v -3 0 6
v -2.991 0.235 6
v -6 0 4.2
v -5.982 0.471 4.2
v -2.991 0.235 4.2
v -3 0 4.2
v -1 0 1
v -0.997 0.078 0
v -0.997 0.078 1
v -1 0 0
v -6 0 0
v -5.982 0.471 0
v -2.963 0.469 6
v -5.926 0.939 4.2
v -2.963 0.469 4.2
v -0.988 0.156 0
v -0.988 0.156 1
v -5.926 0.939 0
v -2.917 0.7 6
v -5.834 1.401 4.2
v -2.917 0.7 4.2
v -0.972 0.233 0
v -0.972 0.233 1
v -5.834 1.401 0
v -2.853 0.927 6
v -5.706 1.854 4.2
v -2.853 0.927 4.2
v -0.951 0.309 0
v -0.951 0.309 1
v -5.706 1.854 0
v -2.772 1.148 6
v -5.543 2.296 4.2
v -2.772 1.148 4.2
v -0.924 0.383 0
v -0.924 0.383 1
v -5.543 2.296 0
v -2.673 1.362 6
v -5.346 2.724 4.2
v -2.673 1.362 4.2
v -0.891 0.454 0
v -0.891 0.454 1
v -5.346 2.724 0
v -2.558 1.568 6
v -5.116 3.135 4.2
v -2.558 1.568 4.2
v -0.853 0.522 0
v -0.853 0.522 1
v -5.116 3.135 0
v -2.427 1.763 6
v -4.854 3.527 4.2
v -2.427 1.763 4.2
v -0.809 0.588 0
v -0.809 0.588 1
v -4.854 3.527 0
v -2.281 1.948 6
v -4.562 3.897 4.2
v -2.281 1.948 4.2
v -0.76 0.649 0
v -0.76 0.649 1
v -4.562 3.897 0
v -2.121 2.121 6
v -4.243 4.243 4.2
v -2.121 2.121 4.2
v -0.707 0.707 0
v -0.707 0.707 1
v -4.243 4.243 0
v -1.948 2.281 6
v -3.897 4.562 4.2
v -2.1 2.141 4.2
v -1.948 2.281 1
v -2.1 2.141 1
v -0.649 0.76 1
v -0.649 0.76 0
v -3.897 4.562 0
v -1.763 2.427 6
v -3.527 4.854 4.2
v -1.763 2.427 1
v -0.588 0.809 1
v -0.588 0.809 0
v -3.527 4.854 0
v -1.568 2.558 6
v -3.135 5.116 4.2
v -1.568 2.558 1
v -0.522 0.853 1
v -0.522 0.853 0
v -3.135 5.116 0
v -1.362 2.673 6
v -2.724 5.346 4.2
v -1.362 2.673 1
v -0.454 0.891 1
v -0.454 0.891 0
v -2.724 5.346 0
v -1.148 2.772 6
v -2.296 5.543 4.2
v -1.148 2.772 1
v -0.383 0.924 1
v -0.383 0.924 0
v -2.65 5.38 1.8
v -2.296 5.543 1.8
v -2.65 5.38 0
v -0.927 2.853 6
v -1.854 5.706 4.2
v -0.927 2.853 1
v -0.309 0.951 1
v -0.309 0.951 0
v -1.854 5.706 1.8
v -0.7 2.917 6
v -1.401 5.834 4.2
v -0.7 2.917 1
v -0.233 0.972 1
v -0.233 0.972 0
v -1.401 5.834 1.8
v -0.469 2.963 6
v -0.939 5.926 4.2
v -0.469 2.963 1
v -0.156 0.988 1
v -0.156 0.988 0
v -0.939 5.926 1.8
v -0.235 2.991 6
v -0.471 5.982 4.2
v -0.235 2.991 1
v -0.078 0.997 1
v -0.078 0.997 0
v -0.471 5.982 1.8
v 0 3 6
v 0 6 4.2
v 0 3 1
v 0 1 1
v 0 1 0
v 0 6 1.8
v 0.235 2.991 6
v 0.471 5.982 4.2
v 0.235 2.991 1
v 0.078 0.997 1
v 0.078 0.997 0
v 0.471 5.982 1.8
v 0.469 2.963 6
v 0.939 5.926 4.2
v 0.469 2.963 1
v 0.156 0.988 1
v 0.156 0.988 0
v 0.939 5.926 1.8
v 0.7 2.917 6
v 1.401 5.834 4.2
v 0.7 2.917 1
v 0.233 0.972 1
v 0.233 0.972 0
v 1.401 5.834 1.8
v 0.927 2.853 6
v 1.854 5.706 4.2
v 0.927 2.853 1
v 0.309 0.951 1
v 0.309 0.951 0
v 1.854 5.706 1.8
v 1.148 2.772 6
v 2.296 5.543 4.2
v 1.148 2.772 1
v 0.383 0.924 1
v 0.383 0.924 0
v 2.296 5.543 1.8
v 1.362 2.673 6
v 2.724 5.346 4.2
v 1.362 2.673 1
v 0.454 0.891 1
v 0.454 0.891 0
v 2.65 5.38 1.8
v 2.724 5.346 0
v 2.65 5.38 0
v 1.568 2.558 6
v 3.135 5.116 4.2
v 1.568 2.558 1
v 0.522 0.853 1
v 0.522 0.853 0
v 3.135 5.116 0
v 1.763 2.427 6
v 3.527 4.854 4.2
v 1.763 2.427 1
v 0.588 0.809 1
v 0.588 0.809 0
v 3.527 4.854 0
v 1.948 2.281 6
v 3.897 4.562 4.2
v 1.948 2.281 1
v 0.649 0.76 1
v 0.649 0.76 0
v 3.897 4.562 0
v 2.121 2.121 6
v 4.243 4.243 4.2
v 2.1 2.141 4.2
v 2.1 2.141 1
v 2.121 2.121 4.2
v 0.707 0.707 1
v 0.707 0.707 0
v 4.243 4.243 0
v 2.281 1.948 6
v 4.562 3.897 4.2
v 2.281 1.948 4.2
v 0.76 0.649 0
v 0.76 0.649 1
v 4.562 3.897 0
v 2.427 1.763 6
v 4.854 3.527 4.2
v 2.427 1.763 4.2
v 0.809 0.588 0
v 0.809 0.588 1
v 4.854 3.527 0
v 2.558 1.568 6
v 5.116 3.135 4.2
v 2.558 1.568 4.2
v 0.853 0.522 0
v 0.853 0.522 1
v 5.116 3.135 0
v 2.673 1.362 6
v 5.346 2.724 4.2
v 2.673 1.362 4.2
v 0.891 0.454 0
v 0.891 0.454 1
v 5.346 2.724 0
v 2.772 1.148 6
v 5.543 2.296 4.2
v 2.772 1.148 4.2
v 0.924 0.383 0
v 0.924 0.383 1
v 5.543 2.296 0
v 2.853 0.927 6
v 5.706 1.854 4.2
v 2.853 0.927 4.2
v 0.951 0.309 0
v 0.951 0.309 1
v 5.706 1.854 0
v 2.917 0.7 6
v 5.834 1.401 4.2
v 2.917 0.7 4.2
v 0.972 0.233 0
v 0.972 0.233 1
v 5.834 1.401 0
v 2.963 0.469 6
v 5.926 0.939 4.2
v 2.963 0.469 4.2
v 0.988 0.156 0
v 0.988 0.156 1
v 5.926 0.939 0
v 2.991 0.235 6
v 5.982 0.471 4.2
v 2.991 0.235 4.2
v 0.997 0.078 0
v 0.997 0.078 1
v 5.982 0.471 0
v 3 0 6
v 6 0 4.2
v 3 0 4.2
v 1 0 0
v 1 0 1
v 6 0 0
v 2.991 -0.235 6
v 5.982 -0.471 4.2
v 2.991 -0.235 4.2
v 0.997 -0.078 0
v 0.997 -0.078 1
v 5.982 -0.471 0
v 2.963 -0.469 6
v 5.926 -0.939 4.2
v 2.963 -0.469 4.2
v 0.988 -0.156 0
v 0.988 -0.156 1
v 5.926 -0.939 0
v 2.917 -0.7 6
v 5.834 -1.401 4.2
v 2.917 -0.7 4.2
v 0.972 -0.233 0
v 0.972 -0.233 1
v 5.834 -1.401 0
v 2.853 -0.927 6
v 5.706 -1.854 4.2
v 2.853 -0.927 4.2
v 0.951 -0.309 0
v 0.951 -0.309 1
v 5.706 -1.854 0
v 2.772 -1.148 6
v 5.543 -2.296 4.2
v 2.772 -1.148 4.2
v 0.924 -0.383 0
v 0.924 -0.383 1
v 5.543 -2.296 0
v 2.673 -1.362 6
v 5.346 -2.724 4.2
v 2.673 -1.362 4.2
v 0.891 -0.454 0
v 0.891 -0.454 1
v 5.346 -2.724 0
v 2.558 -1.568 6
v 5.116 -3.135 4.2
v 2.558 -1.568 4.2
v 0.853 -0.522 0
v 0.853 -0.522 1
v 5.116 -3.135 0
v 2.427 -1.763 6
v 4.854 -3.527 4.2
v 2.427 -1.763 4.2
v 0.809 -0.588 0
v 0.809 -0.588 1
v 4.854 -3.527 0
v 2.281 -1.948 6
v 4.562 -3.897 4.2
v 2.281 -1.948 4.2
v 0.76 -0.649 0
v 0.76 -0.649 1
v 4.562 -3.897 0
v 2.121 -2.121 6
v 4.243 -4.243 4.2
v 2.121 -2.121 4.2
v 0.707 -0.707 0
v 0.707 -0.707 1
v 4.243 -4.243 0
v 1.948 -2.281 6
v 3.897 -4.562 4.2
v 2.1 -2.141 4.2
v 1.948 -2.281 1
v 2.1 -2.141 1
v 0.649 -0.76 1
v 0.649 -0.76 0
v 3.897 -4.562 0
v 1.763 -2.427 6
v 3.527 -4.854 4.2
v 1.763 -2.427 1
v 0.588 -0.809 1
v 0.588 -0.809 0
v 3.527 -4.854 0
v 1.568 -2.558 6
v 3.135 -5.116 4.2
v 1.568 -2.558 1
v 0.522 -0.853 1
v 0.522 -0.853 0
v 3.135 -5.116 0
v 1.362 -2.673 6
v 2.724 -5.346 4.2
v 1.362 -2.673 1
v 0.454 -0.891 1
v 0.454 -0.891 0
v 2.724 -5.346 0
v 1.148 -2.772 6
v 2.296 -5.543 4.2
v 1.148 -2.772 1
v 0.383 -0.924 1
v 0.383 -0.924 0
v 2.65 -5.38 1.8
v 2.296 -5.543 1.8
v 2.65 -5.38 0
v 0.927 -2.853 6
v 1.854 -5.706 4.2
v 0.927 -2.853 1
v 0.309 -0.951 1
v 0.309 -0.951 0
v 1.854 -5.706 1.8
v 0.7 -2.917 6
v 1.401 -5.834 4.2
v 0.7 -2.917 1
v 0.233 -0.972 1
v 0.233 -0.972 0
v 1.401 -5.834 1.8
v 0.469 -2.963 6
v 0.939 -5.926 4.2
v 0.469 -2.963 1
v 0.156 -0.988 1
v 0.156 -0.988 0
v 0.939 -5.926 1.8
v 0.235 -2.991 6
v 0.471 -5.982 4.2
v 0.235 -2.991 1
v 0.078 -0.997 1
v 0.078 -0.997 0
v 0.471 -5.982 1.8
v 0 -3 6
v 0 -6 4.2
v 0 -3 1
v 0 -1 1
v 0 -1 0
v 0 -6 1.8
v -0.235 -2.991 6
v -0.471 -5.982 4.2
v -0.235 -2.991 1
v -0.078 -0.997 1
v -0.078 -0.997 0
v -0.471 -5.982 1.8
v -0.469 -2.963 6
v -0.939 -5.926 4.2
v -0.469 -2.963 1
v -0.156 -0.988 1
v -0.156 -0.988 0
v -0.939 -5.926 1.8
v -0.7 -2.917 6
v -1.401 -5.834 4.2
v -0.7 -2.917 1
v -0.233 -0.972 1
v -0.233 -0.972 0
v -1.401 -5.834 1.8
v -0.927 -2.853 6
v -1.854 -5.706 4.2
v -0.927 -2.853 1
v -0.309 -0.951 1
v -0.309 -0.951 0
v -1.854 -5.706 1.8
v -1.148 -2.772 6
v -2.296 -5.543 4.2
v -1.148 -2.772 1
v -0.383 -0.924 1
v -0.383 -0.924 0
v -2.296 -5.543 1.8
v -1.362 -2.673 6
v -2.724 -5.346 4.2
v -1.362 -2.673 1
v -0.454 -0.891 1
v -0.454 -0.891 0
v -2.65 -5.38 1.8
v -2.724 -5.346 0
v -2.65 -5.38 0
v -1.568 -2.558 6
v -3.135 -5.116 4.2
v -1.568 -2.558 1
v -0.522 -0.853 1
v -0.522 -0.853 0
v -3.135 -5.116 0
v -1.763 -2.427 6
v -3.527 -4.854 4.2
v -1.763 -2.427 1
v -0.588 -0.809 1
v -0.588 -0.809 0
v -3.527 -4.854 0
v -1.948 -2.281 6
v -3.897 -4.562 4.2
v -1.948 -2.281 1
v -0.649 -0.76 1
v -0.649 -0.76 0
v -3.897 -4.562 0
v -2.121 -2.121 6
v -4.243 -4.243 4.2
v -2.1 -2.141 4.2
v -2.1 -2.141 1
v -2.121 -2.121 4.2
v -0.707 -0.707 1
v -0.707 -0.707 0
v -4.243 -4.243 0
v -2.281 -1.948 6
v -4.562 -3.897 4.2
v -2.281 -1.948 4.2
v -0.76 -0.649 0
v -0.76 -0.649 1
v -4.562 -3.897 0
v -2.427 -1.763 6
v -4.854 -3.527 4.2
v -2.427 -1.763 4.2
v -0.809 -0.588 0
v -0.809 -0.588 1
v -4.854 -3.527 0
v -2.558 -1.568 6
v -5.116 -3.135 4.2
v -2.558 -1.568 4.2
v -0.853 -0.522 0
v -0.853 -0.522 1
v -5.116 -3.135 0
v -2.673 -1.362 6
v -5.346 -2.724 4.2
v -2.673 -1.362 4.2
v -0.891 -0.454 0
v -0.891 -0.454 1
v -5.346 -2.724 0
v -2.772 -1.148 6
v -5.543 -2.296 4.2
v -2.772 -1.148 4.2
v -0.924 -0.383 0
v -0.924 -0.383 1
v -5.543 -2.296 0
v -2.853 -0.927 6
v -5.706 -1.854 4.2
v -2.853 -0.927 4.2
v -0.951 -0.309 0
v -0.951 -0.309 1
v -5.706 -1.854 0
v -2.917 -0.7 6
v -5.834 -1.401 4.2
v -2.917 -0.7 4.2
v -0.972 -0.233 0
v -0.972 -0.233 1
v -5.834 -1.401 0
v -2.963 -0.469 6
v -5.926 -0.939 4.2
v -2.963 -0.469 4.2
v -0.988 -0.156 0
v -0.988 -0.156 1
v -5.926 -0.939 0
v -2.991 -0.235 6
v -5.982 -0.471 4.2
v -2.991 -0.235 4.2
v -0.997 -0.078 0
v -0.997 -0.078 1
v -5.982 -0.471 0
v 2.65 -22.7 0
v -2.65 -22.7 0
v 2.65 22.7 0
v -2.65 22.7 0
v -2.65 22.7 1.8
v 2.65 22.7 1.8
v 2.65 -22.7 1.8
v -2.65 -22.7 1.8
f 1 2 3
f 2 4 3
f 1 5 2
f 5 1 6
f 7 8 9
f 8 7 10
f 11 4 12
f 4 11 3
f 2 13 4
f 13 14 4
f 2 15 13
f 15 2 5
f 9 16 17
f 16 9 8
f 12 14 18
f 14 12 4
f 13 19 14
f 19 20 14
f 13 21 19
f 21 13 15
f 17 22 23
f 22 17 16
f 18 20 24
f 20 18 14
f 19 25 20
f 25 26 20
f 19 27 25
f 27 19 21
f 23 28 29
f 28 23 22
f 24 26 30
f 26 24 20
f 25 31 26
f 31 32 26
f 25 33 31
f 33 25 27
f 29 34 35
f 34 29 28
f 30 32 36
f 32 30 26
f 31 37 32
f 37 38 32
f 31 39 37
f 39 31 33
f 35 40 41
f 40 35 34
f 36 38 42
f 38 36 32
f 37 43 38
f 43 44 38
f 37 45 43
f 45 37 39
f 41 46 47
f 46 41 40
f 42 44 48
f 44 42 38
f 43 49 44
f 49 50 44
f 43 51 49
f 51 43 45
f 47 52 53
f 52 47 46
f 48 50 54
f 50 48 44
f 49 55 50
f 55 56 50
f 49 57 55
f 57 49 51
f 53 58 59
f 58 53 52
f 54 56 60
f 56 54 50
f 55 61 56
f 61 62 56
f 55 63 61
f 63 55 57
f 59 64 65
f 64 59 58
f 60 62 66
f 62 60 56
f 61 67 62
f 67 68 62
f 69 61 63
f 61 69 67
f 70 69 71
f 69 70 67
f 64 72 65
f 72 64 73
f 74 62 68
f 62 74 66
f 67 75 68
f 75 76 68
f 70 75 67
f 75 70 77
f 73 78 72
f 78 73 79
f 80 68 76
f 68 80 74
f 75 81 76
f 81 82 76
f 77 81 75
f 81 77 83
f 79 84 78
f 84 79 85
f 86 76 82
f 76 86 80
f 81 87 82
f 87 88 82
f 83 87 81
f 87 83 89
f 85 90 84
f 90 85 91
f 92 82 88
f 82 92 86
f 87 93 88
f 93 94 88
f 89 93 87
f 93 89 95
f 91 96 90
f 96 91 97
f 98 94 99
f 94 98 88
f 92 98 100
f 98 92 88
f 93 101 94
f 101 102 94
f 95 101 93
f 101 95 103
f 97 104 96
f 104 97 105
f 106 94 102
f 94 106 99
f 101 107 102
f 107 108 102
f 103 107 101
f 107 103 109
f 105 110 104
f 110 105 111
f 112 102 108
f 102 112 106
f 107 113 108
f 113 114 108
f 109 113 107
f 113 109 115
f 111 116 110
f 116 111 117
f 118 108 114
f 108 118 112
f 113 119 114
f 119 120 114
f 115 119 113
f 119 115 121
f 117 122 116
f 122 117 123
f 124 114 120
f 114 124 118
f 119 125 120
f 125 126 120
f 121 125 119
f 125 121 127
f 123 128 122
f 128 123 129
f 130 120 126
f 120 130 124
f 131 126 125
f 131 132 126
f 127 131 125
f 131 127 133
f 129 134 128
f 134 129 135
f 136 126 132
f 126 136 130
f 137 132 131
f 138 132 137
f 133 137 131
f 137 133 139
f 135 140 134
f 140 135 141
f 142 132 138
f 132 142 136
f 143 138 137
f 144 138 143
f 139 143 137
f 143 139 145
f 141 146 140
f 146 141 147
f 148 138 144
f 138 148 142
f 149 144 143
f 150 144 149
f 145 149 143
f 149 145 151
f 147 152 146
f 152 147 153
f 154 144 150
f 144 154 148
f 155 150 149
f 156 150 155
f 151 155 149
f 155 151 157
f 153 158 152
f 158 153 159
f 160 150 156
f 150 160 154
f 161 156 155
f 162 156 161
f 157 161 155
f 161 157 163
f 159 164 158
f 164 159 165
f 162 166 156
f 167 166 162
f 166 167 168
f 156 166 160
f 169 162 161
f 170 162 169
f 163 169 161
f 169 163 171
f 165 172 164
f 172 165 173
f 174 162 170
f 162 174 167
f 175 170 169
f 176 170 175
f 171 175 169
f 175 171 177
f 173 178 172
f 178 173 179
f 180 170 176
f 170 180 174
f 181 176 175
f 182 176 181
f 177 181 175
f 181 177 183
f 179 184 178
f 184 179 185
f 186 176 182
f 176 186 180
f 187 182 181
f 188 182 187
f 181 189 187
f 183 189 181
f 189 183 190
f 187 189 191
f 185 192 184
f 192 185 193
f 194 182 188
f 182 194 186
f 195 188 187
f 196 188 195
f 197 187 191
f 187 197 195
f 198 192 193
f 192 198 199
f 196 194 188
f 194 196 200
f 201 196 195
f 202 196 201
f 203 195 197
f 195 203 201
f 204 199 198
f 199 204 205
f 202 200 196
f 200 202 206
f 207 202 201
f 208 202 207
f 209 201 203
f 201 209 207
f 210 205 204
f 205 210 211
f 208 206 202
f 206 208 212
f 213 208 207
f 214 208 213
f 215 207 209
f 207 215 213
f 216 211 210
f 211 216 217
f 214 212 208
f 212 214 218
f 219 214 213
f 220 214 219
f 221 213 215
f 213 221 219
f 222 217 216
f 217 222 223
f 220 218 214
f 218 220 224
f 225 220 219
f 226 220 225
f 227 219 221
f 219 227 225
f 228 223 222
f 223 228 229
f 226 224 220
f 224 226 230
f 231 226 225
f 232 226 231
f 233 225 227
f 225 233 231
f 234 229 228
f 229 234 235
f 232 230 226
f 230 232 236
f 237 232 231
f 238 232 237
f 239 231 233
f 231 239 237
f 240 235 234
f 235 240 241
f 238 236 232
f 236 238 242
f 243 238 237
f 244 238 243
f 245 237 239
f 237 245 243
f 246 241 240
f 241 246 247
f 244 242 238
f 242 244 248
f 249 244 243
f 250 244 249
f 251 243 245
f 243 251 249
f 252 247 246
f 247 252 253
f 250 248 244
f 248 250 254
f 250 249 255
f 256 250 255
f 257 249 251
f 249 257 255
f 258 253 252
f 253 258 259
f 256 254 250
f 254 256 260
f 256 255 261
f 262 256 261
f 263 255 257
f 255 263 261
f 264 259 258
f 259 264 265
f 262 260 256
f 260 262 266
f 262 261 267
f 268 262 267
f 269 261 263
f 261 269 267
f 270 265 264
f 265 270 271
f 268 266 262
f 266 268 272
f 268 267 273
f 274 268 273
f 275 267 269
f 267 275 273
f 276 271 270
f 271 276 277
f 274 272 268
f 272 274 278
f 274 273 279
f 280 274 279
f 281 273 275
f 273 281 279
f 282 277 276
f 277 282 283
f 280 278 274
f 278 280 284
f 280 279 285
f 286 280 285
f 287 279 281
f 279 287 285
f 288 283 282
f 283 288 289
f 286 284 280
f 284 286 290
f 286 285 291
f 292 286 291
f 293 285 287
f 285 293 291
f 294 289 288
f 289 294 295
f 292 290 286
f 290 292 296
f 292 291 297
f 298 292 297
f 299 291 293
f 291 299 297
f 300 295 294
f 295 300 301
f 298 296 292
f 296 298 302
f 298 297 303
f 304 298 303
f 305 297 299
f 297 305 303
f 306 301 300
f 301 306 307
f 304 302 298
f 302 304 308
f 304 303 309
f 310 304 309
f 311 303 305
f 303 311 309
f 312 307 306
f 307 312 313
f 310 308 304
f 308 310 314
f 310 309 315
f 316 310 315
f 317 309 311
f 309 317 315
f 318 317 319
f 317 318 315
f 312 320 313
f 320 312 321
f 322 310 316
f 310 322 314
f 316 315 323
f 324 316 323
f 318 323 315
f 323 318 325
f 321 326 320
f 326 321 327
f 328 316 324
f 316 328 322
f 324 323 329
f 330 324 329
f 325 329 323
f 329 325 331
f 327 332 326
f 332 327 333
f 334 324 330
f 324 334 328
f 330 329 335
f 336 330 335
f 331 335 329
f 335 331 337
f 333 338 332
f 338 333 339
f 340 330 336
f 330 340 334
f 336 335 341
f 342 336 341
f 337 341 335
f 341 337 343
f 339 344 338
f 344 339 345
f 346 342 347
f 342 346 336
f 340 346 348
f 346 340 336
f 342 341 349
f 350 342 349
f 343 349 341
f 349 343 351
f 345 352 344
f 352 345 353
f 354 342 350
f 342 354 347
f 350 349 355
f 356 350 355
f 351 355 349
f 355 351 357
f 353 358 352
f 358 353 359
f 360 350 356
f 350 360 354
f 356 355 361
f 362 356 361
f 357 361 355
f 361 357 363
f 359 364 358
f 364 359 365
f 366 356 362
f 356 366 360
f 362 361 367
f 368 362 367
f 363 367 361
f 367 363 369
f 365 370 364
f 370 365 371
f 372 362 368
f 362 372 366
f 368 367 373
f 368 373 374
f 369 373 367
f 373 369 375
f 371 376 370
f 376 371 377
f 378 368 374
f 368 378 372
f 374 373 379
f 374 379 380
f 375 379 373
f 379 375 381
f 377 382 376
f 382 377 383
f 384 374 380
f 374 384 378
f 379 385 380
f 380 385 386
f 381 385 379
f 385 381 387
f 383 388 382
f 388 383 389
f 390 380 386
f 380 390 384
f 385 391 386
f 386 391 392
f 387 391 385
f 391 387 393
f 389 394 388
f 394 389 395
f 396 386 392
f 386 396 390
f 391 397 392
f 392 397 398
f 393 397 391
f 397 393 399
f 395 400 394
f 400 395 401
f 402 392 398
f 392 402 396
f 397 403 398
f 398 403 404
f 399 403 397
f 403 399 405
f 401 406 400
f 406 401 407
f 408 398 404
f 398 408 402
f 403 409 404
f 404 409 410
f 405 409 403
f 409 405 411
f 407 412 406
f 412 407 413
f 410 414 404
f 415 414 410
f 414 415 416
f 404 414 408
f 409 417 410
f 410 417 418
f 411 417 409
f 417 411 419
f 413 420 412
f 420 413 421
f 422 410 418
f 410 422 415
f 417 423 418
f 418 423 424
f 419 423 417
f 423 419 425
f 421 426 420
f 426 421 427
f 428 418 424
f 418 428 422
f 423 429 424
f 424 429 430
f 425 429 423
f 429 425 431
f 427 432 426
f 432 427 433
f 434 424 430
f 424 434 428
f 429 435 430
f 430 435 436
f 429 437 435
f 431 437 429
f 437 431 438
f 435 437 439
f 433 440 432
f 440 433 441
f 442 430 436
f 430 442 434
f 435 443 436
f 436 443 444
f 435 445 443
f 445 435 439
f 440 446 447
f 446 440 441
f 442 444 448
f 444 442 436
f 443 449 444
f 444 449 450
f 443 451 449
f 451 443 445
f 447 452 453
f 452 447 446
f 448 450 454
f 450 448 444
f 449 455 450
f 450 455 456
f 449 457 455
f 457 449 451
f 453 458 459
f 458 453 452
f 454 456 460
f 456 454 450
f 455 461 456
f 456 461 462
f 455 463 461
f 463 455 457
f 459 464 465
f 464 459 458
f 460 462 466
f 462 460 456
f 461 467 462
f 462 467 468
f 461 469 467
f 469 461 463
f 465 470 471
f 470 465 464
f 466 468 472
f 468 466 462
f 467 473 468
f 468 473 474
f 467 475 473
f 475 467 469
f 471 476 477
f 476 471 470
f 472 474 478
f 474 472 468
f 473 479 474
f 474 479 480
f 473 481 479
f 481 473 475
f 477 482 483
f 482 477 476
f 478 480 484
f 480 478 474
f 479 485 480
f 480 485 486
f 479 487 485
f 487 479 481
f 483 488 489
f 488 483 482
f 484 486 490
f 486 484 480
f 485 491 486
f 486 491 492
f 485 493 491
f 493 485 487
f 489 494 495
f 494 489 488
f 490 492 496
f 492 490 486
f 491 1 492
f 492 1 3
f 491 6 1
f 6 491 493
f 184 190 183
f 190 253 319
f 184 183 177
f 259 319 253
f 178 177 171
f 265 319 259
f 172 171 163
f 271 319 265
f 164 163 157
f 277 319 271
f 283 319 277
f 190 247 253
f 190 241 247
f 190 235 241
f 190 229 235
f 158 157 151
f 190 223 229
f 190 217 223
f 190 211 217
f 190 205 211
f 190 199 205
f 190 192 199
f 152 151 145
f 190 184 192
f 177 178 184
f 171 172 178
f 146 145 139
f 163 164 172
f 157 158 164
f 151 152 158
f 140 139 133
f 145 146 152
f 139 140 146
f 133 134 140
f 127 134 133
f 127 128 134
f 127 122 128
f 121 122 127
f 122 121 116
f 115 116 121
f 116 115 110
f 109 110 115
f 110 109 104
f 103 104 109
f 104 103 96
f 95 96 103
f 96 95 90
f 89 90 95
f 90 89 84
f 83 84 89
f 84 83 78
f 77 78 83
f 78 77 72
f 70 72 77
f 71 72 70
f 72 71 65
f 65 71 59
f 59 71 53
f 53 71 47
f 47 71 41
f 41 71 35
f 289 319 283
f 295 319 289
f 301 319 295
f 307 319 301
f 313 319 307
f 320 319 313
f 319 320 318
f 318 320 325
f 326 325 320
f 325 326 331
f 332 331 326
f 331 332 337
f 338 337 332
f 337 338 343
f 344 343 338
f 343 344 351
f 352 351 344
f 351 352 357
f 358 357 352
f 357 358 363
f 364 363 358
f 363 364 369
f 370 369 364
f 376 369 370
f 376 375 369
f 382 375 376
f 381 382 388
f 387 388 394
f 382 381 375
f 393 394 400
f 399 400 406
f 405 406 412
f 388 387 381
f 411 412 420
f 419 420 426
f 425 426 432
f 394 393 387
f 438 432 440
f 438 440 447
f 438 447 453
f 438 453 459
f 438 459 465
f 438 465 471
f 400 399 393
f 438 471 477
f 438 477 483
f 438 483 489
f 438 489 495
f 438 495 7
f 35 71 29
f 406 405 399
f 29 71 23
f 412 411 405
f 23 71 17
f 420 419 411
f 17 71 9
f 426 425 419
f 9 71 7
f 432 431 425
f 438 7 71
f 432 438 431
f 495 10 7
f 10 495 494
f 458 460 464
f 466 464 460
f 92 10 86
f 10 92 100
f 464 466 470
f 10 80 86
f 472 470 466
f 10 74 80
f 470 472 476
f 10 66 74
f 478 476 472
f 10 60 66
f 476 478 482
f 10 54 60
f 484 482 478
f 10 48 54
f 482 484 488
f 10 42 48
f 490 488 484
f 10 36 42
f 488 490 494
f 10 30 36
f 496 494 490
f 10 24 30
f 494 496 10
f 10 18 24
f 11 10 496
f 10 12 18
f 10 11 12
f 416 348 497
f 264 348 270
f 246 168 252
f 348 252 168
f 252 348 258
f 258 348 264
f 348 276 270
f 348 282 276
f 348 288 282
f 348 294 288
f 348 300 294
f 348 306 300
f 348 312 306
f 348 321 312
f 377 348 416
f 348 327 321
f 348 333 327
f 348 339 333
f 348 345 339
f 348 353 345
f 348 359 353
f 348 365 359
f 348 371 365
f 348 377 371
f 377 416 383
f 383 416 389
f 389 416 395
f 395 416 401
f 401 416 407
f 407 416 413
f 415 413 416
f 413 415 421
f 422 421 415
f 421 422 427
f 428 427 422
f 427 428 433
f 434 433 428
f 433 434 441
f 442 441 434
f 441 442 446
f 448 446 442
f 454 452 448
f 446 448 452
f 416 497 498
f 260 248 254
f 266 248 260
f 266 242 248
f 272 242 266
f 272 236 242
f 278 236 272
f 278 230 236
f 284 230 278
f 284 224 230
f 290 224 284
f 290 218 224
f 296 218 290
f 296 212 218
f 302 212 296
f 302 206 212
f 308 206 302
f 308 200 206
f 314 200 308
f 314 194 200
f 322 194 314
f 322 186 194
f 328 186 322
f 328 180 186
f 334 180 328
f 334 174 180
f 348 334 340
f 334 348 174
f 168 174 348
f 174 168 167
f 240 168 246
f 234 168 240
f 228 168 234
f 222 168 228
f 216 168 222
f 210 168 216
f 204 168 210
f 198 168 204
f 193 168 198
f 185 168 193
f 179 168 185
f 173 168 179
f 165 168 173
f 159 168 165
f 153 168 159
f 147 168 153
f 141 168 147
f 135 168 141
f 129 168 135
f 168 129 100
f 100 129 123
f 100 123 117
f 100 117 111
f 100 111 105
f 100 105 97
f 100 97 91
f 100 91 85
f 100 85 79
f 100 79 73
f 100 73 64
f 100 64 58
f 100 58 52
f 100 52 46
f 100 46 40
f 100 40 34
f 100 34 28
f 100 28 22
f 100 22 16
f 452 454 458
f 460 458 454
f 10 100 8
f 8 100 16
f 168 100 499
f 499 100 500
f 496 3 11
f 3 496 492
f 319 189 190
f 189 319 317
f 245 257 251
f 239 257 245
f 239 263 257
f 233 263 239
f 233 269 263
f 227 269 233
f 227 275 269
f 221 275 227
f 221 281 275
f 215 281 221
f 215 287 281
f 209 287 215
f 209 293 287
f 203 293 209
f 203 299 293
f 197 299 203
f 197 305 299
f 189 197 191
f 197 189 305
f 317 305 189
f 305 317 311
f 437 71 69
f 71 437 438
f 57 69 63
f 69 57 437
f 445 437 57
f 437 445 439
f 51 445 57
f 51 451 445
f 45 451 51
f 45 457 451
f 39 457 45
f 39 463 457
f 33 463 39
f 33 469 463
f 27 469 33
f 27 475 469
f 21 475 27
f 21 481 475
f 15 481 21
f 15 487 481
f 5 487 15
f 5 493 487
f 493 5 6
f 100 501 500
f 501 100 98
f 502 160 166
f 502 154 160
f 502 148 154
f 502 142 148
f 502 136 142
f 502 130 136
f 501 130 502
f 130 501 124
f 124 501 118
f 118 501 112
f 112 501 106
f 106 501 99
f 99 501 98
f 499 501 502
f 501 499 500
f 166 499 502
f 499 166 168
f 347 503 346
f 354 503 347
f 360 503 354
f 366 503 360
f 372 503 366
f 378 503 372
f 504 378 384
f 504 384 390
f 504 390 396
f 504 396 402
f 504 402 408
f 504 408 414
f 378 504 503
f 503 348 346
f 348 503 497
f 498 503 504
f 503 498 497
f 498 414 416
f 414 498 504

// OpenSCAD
////////////////////////////////////////////////////////////////////////
// Initial Revision:
//   2019-Mar-15
//
// Author:
//
//   David Crook <idcrook@users.noreply.github.com>
//
// Inspired by:
//
//
// Description:
//
//   This project is intended as a enhanced webcam attach for the overhaed
//   webcam/stand that came with RoboGrok kit.
//
// Revisions/Notes:
//
//  2019-Mar-15 : Initial revision
//
////////////////////////////////////////////////////////////////////////


outer_radius = 12.0 / 2;
inner_radius = 6.0 / 2;

slot_width = 4.2;
slot_width_div2 = slot_width / 2;

slot_height = 4.2;
slot_inner_radius_chord = 5.0;
slot_chord_div2 = slot_inner_radius_chord / 2;


module slot_solid ( slot_width = slot_width, solid_x = slot_chord_div2, solid_y = slot_inner_radius_chord, z_height = slot_height)  {
   echo(slot_width, solid_x, solid_y, z_height);

    color("red")
    linear_extrude(height = z_height)
        translate([slot_width / 2 + 0, -solid_y/2])
            square(size = [solid_x, solid_y]);
}

brace_start_offset_from_center = outer_radius - 1;
brace_width = 5.3;
brace_length = (25.4/2) + 5;
brace_height = 1.8;

module brace_solid ( brace_start_x = brace_start_offset_from_center, solid_x = brace_length , solid_y = brace_width, z_height = brace_height)  {
   echo(slot_width, solid_x, solid_y, z_height);

    color("green")
    linear_extrude(height = z_height)
        translate([brace_start_x + (solid_x/2), 0])
            square(size = [solid_x, solid_y], center = true);
}

// rotate_extrude() rotates a 2D shape around the Z axis.
color("blue")
    translate([0, 0, 0])
        rotate_extrude($fn = 80)
            polygon( points=[
                [1,0],
                [outer_radius, 0],
                [outer_radius, 4.2],
                [inner_radius, 6],
                [inner_radius, 1],
                [1,1]] );




slot_solid();

rotate (a = 180)
  slot_solid();



rotate (a = 90)
  brace_solid();

rotate (a = 270)
  brace_solid();
